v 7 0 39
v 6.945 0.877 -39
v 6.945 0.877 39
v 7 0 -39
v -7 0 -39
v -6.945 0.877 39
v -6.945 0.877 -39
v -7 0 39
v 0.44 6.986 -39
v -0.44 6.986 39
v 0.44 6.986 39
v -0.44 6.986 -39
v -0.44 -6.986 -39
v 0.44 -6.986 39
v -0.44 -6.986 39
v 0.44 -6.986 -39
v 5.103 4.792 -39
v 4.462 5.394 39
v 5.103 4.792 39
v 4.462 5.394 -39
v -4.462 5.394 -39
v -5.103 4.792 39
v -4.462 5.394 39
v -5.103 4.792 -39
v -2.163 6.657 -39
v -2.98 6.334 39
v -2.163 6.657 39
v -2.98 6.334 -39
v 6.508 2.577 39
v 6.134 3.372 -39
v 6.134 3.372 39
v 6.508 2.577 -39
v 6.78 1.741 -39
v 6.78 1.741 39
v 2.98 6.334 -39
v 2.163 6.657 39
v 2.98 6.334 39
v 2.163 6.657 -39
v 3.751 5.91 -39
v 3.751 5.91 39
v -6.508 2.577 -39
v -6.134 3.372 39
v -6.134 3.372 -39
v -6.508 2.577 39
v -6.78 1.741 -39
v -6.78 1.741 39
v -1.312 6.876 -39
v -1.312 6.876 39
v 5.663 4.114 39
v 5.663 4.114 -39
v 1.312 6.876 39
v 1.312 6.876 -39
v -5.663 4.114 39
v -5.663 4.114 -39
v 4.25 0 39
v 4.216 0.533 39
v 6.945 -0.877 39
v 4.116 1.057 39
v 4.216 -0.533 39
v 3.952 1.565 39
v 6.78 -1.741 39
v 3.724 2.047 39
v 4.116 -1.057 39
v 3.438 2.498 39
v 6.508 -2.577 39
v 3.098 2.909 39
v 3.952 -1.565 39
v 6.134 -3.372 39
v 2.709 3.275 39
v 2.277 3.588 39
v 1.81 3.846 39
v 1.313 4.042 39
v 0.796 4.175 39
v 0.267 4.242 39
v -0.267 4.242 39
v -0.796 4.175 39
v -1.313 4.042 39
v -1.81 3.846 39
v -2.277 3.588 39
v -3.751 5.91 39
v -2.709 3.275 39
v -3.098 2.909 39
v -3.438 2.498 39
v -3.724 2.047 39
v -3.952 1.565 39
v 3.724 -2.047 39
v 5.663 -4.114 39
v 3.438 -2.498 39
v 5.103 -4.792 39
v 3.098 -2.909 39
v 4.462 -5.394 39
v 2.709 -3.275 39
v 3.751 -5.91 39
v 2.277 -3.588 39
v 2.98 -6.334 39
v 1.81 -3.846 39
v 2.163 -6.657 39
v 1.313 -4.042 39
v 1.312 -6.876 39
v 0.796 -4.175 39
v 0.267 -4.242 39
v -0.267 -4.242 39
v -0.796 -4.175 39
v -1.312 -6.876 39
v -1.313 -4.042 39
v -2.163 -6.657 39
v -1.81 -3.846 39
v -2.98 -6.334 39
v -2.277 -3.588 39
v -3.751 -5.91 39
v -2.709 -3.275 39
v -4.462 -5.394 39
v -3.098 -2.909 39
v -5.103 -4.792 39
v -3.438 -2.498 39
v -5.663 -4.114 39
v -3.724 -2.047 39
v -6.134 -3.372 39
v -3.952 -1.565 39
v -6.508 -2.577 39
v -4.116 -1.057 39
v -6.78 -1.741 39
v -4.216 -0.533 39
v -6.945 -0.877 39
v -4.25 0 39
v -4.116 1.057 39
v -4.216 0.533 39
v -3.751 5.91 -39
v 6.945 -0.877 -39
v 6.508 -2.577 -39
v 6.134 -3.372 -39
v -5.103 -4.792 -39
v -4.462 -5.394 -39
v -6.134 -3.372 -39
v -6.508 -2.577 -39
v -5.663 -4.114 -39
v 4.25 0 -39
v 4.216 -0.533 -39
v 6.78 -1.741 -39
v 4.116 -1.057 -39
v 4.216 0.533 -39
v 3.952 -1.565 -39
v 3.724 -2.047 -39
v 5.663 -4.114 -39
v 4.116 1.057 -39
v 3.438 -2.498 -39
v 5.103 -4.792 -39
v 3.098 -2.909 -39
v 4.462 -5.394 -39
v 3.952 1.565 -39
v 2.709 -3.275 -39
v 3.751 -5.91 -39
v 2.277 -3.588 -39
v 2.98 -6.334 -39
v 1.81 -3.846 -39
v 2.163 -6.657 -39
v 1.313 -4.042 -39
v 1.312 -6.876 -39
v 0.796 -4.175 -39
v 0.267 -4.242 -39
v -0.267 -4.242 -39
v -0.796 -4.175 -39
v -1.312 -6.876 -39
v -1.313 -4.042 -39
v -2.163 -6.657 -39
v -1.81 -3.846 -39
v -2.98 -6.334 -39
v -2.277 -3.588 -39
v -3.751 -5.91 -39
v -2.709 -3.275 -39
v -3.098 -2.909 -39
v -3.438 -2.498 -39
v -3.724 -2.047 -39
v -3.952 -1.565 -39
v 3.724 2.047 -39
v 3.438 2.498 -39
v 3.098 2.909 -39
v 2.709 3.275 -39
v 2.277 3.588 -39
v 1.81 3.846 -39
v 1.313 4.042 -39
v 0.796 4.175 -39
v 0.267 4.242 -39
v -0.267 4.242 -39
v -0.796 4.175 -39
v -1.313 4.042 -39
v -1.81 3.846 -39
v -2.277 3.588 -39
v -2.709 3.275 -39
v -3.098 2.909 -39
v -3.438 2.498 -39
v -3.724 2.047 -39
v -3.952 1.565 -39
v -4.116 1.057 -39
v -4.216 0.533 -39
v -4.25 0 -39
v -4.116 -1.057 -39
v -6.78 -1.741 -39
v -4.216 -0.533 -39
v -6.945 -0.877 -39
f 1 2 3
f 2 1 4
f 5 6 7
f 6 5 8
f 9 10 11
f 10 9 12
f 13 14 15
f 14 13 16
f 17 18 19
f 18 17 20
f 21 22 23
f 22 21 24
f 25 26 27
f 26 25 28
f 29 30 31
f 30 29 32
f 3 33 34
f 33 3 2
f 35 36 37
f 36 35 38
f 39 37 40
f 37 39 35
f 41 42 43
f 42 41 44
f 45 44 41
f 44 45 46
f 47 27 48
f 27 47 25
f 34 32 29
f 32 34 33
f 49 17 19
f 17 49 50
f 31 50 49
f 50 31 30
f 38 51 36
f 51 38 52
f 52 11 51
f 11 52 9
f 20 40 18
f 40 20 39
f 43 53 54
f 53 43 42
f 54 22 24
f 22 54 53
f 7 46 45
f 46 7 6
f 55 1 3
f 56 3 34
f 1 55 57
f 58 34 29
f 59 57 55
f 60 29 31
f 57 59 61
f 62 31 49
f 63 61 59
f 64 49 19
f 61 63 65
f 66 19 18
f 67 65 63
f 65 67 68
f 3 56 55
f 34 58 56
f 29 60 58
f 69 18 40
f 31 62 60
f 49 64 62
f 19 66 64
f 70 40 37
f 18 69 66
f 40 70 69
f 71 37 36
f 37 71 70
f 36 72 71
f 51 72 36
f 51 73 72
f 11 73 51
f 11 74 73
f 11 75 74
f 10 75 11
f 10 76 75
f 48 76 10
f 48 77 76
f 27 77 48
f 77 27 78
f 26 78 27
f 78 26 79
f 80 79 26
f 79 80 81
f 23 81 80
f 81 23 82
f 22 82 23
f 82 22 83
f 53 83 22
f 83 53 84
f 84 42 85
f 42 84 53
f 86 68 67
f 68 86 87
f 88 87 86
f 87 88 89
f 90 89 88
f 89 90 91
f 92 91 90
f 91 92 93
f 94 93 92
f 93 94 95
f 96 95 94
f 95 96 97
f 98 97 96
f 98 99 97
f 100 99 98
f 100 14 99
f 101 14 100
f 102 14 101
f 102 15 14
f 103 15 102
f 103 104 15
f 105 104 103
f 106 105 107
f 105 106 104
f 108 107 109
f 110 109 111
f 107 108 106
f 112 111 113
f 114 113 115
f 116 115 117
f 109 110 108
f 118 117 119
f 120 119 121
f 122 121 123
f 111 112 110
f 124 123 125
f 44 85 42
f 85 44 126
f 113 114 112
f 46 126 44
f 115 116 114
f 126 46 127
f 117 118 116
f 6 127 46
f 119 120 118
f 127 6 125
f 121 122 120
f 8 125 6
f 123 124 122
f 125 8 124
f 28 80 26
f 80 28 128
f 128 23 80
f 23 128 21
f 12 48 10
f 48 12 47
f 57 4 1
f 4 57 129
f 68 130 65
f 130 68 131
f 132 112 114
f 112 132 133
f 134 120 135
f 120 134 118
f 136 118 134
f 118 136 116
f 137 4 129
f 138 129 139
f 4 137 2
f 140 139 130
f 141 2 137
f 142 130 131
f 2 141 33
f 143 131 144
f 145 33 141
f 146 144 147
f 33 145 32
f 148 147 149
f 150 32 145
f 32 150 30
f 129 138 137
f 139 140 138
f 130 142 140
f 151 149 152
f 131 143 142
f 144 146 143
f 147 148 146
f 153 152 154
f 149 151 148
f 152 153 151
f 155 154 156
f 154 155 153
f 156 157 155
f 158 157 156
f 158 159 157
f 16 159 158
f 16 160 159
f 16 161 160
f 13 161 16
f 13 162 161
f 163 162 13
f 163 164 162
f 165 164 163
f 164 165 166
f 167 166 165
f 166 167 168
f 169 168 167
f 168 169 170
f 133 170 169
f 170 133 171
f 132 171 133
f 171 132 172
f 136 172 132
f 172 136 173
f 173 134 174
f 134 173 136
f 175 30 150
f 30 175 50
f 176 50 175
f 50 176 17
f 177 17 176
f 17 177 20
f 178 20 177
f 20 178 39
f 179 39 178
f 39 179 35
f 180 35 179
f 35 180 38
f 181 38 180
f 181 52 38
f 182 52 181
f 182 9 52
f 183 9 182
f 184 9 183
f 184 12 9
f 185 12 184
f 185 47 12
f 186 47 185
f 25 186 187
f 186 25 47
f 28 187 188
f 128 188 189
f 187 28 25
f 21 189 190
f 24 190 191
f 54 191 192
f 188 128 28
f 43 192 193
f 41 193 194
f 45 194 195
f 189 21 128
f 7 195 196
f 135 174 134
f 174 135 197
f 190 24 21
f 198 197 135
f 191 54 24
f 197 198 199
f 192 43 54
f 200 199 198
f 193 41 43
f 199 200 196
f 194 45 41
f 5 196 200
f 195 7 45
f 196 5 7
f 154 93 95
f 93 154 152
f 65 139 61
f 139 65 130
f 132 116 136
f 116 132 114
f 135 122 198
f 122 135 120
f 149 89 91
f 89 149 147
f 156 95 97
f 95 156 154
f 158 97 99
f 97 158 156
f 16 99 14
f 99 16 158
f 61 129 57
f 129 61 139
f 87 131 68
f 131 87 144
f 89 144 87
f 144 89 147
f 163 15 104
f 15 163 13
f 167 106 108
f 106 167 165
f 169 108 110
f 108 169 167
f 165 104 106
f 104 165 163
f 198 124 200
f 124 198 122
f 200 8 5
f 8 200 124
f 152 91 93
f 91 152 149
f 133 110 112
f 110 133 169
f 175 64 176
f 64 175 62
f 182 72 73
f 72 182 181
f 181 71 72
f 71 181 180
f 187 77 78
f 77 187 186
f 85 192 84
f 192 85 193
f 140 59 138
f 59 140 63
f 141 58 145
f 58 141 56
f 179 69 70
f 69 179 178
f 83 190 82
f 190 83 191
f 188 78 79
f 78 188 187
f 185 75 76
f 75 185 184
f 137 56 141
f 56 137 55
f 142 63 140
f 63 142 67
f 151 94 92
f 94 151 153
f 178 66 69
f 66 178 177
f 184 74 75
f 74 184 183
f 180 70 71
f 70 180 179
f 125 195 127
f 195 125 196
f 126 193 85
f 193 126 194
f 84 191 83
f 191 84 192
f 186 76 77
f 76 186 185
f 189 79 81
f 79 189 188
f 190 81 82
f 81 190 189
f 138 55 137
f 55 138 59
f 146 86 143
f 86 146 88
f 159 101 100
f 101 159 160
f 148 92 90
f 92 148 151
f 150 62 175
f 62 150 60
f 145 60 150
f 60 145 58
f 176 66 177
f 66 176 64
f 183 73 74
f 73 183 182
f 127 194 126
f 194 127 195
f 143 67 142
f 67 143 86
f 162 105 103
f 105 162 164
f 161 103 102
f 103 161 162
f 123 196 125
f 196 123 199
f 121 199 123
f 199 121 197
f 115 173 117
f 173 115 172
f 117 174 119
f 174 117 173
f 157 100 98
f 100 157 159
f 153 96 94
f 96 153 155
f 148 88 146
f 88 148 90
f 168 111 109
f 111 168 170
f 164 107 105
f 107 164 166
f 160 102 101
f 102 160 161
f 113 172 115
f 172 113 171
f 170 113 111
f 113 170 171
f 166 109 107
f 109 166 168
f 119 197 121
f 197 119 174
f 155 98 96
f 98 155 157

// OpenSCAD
$fn = 50;


difference() {
	union() {
		translate(v = [0, 0, -39.0000000000]) {
			cylinder(h = 78, r = 7.0000000000);
		}
	}
	union() {
		translate(v = [0, 0, -100.0000000000]) {
			cylinder(h = 200, r = 4.2500000000);
		}
	}
}
